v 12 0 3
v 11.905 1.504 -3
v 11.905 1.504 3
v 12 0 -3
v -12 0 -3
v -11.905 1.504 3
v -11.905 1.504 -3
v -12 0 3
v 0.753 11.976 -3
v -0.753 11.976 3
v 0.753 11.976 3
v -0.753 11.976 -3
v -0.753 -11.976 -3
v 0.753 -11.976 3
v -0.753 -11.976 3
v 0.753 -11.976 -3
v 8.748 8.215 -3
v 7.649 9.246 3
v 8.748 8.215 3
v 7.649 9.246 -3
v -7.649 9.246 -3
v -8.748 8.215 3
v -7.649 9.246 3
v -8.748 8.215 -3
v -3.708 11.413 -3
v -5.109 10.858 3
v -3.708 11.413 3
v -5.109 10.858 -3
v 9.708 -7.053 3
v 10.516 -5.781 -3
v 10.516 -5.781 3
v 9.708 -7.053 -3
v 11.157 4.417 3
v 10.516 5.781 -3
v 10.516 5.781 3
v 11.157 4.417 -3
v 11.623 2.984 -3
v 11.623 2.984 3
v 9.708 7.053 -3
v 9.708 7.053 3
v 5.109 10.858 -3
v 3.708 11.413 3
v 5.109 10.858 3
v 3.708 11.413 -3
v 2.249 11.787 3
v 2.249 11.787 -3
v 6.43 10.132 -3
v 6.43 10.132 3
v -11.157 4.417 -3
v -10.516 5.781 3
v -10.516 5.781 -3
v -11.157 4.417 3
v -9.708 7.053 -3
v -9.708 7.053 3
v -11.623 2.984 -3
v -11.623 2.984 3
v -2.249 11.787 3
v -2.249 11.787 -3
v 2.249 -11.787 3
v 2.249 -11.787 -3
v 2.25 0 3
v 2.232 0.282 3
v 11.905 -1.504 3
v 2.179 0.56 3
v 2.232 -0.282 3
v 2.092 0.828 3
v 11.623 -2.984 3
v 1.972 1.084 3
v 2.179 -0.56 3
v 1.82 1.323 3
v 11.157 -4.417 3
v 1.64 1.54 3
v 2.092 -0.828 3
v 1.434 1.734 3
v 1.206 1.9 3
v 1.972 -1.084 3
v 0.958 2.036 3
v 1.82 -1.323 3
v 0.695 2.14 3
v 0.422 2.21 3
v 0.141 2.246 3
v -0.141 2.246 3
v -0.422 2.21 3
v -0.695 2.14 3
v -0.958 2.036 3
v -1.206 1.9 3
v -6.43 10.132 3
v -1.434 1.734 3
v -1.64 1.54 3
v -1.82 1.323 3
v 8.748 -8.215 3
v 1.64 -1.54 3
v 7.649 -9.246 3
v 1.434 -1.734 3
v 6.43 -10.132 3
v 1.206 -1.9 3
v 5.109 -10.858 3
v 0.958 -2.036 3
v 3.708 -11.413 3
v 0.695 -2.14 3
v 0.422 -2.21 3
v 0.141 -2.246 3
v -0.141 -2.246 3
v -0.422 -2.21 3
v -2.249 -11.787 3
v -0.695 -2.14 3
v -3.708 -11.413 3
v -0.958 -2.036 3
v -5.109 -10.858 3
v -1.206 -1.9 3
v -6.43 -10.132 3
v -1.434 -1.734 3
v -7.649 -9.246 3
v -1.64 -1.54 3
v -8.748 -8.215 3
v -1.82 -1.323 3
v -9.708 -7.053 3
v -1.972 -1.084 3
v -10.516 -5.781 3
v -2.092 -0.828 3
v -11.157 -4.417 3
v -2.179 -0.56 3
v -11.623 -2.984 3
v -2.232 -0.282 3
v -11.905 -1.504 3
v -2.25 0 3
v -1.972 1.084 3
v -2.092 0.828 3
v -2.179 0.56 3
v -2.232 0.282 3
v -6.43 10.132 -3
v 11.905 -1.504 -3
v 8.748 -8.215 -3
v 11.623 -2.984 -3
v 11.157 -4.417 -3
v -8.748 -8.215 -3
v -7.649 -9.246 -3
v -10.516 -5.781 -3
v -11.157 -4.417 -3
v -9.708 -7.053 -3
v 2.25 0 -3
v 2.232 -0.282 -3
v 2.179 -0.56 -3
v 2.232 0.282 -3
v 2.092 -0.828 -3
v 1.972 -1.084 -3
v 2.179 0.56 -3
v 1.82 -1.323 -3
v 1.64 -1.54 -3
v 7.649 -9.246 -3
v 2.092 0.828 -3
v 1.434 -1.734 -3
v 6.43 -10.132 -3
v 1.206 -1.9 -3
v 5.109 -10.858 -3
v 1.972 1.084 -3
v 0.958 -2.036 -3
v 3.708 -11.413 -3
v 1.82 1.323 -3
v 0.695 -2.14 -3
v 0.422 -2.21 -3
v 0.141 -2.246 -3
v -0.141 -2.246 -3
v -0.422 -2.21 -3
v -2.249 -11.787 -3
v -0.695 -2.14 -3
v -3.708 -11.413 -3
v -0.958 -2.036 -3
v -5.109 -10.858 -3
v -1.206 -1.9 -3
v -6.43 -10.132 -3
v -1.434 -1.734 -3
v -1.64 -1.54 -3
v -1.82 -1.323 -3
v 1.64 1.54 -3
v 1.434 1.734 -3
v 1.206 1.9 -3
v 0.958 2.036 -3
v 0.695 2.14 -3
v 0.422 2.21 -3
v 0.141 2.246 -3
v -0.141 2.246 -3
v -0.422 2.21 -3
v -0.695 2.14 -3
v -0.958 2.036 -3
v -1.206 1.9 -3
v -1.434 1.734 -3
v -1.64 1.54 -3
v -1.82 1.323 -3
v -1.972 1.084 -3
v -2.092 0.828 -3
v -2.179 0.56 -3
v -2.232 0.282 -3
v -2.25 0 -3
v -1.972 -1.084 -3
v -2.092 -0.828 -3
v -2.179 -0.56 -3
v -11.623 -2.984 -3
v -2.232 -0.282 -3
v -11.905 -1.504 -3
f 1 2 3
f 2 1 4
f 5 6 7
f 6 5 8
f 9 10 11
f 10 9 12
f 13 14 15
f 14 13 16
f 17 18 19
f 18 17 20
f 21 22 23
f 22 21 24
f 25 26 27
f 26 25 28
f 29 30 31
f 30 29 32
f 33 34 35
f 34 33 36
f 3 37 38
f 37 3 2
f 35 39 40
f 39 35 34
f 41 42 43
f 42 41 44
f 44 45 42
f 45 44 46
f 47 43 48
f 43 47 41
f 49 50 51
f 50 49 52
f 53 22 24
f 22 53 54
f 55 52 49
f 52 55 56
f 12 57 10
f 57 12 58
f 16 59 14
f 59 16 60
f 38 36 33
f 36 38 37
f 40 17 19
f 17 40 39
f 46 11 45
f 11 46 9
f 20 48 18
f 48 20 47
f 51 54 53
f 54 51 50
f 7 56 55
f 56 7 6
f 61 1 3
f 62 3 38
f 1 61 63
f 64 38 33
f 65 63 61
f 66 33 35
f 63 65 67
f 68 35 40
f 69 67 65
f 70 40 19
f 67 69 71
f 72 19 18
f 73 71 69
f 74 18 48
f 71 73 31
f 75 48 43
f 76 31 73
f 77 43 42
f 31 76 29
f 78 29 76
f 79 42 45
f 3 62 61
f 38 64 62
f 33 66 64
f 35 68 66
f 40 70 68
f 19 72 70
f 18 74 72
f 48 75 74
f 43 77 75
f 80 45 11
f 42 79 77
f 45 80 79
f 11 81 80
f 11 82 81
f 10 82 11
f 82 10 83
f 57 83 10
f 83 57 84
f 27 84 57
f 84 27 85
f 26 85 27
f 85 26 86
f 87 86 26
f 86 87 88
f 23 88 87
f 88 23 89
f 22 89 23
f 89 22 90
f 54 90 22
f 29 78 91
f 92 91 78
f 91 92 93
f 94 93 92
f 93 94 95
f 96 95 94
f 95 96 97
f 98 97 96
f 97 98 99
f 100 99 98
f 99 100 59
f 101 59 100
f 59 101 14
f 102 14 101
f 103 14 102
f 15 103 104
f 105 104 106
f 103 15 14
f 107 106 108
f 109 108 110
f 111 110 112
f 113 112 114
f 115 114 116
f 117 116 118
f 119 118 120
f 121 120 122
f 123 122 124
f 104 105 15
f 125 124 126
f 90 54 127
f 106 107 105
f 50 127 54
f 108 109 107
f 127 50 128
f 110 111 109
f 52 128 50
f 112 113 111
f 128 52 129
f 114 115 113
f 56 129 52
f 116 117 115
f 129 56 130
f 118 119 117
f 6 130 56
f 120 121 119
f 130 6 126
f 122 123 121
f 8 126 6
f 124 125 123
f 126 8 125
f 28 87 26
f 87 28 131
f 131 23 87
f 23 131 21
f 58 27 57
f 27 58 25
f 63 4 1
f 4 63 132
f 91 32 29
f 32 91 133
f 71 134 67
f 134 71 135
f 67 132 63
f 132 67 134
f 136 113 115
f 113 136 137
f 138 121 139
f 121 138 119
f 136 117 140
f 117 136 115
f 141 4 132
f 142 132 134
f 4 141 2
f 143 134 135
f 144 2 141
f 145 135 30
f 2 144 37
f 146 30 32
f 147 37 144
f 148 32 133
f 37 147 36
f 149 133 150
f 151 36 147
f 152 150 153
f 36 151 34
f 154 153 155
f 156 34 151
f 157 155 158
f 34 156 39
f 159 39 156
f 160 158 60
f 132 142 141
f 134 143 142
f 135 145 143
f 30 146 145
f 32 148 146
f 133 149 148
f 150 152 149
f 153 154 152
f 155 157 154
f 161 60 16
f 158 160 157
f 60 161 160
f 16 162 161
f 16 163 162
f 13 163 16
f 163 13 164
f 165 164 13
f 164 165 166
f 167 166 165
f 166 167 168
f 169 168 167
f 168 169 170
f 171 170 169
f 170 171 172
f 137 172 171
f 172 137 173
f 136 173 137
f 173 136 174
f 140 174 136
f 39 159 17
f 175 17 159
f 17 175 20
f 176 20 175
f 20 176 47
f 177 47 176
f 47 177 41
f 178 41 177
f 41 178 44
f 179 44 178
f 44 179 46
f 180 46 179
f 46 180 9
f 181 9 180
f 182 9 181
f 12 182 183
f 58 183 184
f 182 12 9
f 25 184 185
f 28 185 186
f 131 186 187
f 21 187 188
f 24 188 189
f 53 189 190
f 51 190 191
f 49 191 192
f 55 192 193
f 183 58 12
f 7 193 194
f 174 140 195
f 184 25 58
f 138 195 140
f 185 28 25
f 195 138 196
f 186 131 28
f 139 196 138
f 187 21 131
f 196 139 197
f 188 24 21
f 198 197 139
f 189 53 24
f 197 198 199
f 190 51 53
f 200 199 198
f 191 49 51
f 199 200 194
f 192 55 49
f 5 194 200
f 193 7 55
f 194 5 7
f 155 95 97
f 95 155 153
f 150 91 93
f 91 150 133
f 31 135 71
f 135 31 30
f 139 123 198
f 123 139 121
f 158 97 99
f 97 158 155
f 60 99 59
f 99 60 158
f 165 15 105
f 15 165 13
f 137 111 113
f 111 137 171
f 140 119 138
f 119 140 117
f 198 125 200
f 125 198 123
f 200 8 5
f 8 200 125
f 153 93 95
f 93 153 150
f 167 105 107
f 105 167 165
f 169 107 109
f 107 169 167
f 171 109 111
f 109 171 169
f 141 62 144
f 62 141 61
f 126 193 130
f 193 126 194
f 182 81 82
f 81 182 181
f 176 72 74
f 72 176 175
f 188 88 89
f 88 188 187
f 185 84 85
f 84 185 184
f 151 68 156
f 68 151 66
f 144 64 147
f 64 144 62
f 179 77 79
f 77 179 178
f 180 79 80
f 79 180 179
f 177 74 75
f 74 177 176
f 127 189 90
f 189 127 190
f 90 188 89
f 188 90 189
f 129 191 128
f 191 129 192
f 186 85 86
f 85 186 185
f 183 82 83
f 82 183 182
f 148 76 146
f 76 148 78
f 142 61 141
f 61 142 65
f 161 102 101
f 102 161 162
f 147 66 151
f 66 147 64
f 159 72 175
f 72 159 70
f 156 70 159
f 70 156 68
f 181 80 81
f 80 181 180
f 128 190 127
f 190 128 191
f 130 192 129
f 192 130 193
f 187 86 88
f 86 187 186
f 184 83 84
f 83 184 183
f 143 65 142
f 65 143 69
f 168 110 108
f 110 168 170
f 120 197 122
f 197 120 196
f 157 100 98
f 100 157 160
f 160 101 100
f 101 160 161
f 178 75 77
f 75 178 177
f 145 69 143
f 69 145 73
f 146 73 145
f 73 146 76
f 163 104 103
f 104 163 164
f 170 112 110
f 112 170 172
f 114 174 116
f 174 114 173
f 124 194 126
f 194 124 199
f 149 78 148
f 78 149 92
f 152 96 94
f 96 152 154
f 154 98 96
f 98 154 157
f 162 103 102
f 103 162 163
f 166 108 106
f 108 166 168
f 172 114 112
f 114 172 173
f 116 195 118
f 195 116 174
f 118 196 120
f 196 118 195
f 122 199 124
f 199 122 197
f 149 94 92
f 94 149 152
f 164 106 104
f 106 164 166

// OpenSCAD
$fn = 50;


difference() {
	union() {
		translate(v = [0, 0, -3.0000000000]) {
			cylinder(h = 6, r = 12.0000000000);
		}
	}
	union() {
		translate(v = [0, 0, -100.0000000000]) {
			cylinder(h = 200, r = 2.2500000000);
		}
	}
}
